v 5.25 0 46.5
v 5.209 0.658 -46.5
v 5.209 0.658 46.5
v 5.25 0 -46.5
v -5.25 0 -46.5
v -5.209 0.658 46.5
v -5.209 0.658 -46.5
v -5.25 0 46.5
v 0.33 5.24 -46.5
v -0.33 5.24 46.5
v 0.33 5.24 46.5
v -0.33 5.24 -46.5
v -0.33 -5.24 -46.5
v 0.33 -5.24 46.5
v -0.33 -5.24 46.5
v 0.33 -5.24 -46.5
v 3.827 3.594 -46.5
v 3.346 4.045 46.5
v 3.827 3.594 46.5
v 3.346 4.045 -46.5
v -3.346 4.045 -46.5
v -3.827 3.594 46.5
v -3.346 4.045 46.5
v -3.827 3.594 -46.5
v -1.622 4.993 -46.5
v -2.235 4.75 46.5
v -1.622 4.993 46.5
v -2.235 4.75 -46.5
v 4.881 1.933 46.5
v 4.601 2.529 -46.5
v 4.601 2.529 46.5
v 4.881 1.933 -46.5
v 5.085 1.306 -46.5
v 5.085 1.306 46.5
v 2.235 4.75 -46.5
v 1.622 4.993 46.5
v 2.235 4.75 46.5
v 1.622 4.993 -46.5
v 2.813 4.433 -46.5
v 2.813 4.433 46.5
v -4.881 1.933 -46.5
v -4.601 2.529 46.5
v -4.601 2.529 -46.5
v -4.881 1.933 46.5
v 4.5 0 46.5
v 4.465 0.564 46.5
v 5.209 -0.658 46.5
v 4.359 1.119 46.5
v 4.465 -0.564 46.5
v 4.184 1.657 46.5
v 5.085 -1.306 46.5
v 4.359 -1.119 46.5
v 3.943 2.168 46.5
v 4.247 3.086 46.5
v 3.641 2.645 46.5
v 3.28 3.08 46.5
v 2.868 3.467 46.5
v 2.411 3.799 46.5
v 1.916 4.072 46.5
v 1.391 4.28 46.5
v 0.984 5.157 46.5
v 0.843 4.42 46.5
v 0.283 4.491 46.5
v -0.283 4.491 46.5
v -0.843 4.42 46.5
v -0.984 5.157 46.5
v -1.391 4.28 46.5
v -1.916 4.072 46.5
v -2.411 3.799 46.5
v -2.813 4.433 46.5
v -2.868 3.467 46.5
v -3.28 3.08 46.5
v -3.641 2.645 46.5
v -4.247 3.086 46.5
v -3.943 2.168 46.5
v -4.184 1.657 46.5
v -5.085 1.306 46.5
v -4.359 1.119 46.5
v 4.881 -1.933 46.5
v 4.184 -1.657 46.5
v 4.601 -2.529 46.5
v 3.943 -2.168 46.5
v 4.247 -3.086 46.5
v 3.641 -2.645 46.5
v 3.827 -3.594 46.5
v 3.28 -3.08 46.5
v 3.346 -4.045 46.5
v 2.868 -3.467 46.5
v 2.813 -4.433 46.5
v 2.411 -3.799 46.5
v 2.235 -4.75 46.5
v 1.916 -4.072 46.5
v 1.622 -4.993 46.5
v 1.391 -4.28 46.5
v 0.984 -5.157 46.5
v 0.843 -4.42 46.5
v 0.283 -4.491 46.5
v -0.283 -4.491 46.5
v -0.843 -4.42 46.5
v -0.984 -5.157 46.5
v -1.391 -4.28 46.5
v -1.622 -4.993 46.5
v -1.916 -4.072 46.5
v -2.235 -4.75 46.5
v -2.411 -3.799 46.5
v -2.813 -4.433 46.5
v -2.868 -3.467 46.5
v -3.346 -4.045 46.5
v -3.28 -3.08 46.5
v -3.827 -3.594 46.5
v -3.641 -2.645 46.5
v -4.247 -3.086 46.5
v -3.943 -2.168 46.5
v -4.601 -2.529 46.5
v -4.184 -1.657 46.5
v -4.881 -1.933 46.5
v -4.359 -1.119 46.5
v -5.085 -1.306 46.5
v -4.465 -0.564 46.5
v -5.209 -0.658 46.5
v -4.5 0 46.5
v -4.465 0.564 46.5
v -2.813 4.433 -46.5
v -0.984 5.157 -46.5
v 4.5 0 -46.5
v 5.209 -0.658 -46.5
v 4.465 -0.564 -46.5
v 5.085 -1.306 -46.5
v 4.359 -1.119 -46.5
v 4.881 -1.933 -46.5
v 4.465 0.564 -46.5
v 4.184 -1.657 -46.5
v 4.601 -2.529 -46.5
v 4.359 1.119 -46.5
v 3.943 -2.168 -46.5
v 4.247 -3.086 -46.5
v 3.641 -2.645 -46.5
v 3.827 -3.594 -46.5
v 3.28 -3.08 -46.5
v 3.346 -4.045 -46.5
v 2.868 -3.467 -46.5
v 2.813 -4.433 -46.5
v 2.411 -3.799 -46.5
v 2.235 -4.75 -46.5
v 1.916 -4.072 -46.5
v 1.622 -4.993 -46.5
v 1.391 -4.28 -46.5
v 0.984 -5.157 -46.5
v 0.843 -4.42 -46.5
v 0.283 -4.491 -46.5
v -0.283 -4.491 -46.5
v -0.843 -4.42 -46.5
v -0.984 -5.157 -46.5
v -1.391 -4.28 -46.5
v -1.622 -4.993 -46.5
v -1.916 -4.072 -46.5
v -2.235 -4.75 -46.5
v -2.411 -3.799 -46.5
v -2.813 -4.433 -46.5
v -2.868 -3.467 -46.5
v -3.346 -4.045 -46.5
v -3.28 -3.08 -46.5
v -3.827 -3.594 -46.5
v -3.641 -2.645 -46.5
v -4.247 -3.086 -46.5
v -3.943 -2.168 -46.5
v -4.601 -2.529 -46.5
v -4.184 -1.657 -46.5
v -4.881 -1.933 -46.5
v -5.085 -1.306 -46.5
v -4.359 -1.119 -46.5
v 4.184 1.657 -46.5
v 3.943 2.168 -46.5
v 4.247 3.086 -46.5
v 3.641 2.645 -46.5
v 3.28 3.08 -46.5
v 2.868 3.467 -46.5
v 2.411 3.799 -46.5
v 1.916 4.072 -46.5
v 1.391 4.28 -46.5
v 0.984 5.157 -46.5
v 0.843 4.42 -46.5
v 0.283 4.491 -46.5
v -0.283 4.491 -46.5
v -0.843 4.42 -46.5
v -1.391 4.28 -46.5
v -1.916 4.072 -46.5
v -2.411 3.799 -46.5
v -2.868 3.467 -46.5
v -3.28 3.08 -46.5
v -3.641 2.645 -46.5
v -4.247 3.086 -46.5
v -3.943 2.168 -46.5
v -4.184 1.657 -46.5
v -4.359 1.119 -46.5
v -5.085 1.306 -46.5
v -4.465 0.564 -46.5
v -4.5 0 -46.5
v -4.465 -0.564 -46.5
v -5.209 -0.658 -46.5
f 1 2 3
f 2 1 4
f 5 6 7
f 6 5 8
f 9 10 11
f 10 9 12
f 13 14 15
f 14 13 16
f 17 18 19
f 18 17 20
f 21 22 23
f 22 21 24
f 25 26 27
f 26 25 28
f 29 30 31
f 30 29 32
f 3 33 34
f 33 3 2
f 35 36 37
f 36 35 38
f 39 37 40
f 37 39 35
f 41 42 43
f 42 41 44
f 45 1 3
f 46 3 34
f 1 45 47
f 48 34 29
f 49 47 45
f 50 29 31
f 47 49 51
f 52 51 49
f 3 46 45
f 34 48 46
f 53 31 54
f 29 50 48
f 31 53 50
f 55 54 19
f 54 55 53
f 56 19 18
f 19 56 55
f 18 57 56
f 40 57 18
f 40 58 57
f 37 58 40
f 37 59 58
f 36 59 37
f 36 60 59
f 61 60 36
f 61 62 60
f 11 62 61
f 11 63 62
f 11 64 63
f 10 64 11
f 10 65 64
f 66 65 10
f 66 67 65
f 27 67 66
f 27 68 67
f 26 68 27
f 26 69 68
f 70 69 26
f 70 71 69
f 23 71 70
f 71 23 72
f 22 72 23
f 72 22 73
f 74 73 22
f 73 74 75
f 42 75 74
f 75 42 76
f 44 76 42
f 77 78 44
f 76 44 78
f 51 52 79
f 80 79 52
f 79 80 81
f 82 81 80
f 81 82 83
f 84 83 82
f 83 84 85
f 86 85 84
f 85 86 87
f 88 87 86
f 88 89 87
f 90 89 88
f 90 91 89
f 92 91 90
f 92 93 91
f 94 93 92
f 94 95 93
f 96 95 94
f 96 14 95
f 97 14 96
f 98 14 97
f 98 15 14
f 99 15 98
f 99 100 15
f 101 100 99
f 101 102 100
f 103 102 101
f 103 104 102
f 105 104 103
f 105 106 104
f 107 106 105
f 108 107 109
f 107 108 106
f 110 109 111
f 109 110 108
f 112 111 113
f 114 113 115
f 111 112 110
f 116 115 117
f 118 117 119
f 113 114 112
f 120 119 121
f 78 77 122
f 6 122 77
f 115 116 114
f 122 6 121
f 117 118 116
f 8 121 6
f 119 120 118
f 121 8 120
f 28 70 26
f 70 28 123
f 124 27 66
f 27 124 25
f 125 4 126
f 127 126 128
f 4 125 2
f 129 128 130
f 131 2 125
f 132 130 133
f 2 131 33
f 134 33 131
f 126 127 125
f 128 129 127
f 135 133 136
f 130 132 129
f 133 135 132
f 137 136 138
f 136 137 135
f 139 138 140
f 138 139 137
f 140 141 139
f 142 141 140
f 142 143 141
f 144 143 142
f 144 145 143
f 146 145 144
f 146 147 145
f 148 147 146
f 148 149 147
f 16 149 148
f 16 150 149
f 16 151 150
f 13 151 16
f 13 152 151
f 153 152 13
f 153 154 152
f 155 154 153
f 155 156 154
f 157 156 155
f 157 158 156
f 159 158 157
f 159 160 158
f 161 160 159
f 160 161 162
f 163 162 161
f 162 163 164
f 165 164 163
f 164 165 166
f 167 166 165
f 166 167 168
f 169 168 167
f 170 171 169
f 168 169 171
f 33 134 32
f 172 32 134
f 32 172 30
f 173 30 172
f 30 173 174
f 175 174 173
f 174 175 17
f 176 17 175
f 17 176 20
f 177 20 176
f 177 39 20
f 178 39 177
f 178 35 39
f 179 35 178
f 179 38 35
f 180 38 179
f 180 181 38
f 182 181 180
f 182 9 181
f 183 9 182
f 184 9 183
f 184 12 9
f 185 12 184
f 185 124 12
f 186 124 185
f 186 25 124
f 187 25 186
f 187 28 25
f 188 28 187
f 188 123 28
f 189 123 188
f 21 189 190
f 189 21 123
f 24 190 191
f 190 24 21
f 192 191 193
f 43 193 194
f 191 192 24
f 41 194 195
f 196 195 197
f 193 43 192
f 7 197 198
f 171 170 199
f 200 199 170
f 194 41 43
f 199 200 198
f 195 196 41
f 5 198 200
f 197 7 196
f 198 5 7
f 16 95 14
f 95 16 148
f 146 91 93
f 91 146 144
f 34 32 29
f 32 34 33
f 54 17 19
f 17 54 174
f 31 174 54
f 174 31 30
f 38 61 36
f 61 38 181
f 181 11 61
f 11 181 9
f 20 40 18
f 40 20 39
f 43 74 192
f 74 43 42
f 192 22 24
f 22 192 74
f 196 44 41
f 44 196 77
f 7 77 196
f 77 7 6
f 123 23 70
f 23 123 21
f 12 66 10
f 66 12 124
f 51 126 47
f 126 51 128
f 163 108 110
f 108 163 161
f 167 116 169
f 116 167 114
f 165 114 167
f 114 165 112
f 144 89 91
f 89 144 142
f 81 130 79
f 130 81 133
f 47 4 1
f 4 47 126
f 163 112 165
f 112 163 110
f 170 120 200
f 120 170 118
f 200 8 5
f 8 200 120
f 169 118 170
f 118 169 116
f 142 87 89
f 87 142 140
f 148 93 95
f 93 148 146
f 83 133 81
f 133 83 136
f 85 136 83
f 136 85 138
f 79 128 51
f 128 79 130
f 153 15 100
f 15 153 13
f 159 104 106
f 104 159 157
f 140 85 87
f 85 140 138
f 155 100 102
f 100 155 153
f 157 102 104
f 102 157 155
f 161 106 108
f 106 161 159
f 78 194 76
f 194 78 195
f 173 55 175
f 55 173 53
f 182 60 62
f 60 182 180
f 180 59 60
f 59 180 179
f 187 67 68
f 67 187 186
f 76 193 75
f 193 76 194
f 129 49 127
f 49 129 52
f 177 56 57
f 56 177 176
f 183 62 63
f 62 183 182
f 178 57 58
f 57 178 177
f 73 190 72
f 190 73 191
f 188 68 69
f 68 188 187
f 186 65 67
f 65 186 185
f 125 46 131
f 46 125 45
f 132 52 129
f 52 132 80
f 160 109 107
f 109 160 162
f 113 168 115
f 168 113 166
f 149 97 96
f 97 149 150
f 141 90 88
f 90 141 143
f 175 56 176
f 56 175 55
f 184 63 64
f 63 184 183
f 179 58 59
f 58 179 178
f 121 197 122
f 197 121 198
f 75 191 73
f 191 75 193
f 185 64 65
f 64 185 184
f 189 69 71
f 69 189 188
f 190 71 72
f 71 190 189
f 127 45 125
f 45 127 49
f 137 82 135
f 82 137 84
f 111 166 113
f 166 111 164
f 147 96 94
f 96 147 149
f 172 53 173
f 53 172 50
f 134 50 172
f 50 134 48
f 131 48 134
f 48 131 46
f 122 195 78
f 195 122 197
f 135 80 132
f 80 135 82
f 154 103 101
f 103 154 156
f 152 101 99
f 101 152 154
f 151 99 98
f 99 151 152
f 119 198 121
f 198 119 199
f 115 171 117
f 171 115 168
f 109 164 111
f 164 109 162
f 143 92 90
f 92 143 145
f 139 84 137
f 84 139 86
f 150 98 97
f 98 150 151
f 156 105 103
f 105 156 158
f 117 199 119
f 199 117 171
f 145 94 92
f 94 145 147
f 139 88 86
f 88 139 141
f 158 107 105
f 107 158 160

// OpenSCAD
$fn = 50;


difference() {
	union() {
		translate(v = [0, 0, -46.5000000000]) {
			cylinder(h = 93, r = 5.2500000000);
		}
	}
	union() {
		translate(v = [0, 0, -100.0000000000]) {
			cylinder(h = 200, r = 4.5000000000);
		}
	}
}
